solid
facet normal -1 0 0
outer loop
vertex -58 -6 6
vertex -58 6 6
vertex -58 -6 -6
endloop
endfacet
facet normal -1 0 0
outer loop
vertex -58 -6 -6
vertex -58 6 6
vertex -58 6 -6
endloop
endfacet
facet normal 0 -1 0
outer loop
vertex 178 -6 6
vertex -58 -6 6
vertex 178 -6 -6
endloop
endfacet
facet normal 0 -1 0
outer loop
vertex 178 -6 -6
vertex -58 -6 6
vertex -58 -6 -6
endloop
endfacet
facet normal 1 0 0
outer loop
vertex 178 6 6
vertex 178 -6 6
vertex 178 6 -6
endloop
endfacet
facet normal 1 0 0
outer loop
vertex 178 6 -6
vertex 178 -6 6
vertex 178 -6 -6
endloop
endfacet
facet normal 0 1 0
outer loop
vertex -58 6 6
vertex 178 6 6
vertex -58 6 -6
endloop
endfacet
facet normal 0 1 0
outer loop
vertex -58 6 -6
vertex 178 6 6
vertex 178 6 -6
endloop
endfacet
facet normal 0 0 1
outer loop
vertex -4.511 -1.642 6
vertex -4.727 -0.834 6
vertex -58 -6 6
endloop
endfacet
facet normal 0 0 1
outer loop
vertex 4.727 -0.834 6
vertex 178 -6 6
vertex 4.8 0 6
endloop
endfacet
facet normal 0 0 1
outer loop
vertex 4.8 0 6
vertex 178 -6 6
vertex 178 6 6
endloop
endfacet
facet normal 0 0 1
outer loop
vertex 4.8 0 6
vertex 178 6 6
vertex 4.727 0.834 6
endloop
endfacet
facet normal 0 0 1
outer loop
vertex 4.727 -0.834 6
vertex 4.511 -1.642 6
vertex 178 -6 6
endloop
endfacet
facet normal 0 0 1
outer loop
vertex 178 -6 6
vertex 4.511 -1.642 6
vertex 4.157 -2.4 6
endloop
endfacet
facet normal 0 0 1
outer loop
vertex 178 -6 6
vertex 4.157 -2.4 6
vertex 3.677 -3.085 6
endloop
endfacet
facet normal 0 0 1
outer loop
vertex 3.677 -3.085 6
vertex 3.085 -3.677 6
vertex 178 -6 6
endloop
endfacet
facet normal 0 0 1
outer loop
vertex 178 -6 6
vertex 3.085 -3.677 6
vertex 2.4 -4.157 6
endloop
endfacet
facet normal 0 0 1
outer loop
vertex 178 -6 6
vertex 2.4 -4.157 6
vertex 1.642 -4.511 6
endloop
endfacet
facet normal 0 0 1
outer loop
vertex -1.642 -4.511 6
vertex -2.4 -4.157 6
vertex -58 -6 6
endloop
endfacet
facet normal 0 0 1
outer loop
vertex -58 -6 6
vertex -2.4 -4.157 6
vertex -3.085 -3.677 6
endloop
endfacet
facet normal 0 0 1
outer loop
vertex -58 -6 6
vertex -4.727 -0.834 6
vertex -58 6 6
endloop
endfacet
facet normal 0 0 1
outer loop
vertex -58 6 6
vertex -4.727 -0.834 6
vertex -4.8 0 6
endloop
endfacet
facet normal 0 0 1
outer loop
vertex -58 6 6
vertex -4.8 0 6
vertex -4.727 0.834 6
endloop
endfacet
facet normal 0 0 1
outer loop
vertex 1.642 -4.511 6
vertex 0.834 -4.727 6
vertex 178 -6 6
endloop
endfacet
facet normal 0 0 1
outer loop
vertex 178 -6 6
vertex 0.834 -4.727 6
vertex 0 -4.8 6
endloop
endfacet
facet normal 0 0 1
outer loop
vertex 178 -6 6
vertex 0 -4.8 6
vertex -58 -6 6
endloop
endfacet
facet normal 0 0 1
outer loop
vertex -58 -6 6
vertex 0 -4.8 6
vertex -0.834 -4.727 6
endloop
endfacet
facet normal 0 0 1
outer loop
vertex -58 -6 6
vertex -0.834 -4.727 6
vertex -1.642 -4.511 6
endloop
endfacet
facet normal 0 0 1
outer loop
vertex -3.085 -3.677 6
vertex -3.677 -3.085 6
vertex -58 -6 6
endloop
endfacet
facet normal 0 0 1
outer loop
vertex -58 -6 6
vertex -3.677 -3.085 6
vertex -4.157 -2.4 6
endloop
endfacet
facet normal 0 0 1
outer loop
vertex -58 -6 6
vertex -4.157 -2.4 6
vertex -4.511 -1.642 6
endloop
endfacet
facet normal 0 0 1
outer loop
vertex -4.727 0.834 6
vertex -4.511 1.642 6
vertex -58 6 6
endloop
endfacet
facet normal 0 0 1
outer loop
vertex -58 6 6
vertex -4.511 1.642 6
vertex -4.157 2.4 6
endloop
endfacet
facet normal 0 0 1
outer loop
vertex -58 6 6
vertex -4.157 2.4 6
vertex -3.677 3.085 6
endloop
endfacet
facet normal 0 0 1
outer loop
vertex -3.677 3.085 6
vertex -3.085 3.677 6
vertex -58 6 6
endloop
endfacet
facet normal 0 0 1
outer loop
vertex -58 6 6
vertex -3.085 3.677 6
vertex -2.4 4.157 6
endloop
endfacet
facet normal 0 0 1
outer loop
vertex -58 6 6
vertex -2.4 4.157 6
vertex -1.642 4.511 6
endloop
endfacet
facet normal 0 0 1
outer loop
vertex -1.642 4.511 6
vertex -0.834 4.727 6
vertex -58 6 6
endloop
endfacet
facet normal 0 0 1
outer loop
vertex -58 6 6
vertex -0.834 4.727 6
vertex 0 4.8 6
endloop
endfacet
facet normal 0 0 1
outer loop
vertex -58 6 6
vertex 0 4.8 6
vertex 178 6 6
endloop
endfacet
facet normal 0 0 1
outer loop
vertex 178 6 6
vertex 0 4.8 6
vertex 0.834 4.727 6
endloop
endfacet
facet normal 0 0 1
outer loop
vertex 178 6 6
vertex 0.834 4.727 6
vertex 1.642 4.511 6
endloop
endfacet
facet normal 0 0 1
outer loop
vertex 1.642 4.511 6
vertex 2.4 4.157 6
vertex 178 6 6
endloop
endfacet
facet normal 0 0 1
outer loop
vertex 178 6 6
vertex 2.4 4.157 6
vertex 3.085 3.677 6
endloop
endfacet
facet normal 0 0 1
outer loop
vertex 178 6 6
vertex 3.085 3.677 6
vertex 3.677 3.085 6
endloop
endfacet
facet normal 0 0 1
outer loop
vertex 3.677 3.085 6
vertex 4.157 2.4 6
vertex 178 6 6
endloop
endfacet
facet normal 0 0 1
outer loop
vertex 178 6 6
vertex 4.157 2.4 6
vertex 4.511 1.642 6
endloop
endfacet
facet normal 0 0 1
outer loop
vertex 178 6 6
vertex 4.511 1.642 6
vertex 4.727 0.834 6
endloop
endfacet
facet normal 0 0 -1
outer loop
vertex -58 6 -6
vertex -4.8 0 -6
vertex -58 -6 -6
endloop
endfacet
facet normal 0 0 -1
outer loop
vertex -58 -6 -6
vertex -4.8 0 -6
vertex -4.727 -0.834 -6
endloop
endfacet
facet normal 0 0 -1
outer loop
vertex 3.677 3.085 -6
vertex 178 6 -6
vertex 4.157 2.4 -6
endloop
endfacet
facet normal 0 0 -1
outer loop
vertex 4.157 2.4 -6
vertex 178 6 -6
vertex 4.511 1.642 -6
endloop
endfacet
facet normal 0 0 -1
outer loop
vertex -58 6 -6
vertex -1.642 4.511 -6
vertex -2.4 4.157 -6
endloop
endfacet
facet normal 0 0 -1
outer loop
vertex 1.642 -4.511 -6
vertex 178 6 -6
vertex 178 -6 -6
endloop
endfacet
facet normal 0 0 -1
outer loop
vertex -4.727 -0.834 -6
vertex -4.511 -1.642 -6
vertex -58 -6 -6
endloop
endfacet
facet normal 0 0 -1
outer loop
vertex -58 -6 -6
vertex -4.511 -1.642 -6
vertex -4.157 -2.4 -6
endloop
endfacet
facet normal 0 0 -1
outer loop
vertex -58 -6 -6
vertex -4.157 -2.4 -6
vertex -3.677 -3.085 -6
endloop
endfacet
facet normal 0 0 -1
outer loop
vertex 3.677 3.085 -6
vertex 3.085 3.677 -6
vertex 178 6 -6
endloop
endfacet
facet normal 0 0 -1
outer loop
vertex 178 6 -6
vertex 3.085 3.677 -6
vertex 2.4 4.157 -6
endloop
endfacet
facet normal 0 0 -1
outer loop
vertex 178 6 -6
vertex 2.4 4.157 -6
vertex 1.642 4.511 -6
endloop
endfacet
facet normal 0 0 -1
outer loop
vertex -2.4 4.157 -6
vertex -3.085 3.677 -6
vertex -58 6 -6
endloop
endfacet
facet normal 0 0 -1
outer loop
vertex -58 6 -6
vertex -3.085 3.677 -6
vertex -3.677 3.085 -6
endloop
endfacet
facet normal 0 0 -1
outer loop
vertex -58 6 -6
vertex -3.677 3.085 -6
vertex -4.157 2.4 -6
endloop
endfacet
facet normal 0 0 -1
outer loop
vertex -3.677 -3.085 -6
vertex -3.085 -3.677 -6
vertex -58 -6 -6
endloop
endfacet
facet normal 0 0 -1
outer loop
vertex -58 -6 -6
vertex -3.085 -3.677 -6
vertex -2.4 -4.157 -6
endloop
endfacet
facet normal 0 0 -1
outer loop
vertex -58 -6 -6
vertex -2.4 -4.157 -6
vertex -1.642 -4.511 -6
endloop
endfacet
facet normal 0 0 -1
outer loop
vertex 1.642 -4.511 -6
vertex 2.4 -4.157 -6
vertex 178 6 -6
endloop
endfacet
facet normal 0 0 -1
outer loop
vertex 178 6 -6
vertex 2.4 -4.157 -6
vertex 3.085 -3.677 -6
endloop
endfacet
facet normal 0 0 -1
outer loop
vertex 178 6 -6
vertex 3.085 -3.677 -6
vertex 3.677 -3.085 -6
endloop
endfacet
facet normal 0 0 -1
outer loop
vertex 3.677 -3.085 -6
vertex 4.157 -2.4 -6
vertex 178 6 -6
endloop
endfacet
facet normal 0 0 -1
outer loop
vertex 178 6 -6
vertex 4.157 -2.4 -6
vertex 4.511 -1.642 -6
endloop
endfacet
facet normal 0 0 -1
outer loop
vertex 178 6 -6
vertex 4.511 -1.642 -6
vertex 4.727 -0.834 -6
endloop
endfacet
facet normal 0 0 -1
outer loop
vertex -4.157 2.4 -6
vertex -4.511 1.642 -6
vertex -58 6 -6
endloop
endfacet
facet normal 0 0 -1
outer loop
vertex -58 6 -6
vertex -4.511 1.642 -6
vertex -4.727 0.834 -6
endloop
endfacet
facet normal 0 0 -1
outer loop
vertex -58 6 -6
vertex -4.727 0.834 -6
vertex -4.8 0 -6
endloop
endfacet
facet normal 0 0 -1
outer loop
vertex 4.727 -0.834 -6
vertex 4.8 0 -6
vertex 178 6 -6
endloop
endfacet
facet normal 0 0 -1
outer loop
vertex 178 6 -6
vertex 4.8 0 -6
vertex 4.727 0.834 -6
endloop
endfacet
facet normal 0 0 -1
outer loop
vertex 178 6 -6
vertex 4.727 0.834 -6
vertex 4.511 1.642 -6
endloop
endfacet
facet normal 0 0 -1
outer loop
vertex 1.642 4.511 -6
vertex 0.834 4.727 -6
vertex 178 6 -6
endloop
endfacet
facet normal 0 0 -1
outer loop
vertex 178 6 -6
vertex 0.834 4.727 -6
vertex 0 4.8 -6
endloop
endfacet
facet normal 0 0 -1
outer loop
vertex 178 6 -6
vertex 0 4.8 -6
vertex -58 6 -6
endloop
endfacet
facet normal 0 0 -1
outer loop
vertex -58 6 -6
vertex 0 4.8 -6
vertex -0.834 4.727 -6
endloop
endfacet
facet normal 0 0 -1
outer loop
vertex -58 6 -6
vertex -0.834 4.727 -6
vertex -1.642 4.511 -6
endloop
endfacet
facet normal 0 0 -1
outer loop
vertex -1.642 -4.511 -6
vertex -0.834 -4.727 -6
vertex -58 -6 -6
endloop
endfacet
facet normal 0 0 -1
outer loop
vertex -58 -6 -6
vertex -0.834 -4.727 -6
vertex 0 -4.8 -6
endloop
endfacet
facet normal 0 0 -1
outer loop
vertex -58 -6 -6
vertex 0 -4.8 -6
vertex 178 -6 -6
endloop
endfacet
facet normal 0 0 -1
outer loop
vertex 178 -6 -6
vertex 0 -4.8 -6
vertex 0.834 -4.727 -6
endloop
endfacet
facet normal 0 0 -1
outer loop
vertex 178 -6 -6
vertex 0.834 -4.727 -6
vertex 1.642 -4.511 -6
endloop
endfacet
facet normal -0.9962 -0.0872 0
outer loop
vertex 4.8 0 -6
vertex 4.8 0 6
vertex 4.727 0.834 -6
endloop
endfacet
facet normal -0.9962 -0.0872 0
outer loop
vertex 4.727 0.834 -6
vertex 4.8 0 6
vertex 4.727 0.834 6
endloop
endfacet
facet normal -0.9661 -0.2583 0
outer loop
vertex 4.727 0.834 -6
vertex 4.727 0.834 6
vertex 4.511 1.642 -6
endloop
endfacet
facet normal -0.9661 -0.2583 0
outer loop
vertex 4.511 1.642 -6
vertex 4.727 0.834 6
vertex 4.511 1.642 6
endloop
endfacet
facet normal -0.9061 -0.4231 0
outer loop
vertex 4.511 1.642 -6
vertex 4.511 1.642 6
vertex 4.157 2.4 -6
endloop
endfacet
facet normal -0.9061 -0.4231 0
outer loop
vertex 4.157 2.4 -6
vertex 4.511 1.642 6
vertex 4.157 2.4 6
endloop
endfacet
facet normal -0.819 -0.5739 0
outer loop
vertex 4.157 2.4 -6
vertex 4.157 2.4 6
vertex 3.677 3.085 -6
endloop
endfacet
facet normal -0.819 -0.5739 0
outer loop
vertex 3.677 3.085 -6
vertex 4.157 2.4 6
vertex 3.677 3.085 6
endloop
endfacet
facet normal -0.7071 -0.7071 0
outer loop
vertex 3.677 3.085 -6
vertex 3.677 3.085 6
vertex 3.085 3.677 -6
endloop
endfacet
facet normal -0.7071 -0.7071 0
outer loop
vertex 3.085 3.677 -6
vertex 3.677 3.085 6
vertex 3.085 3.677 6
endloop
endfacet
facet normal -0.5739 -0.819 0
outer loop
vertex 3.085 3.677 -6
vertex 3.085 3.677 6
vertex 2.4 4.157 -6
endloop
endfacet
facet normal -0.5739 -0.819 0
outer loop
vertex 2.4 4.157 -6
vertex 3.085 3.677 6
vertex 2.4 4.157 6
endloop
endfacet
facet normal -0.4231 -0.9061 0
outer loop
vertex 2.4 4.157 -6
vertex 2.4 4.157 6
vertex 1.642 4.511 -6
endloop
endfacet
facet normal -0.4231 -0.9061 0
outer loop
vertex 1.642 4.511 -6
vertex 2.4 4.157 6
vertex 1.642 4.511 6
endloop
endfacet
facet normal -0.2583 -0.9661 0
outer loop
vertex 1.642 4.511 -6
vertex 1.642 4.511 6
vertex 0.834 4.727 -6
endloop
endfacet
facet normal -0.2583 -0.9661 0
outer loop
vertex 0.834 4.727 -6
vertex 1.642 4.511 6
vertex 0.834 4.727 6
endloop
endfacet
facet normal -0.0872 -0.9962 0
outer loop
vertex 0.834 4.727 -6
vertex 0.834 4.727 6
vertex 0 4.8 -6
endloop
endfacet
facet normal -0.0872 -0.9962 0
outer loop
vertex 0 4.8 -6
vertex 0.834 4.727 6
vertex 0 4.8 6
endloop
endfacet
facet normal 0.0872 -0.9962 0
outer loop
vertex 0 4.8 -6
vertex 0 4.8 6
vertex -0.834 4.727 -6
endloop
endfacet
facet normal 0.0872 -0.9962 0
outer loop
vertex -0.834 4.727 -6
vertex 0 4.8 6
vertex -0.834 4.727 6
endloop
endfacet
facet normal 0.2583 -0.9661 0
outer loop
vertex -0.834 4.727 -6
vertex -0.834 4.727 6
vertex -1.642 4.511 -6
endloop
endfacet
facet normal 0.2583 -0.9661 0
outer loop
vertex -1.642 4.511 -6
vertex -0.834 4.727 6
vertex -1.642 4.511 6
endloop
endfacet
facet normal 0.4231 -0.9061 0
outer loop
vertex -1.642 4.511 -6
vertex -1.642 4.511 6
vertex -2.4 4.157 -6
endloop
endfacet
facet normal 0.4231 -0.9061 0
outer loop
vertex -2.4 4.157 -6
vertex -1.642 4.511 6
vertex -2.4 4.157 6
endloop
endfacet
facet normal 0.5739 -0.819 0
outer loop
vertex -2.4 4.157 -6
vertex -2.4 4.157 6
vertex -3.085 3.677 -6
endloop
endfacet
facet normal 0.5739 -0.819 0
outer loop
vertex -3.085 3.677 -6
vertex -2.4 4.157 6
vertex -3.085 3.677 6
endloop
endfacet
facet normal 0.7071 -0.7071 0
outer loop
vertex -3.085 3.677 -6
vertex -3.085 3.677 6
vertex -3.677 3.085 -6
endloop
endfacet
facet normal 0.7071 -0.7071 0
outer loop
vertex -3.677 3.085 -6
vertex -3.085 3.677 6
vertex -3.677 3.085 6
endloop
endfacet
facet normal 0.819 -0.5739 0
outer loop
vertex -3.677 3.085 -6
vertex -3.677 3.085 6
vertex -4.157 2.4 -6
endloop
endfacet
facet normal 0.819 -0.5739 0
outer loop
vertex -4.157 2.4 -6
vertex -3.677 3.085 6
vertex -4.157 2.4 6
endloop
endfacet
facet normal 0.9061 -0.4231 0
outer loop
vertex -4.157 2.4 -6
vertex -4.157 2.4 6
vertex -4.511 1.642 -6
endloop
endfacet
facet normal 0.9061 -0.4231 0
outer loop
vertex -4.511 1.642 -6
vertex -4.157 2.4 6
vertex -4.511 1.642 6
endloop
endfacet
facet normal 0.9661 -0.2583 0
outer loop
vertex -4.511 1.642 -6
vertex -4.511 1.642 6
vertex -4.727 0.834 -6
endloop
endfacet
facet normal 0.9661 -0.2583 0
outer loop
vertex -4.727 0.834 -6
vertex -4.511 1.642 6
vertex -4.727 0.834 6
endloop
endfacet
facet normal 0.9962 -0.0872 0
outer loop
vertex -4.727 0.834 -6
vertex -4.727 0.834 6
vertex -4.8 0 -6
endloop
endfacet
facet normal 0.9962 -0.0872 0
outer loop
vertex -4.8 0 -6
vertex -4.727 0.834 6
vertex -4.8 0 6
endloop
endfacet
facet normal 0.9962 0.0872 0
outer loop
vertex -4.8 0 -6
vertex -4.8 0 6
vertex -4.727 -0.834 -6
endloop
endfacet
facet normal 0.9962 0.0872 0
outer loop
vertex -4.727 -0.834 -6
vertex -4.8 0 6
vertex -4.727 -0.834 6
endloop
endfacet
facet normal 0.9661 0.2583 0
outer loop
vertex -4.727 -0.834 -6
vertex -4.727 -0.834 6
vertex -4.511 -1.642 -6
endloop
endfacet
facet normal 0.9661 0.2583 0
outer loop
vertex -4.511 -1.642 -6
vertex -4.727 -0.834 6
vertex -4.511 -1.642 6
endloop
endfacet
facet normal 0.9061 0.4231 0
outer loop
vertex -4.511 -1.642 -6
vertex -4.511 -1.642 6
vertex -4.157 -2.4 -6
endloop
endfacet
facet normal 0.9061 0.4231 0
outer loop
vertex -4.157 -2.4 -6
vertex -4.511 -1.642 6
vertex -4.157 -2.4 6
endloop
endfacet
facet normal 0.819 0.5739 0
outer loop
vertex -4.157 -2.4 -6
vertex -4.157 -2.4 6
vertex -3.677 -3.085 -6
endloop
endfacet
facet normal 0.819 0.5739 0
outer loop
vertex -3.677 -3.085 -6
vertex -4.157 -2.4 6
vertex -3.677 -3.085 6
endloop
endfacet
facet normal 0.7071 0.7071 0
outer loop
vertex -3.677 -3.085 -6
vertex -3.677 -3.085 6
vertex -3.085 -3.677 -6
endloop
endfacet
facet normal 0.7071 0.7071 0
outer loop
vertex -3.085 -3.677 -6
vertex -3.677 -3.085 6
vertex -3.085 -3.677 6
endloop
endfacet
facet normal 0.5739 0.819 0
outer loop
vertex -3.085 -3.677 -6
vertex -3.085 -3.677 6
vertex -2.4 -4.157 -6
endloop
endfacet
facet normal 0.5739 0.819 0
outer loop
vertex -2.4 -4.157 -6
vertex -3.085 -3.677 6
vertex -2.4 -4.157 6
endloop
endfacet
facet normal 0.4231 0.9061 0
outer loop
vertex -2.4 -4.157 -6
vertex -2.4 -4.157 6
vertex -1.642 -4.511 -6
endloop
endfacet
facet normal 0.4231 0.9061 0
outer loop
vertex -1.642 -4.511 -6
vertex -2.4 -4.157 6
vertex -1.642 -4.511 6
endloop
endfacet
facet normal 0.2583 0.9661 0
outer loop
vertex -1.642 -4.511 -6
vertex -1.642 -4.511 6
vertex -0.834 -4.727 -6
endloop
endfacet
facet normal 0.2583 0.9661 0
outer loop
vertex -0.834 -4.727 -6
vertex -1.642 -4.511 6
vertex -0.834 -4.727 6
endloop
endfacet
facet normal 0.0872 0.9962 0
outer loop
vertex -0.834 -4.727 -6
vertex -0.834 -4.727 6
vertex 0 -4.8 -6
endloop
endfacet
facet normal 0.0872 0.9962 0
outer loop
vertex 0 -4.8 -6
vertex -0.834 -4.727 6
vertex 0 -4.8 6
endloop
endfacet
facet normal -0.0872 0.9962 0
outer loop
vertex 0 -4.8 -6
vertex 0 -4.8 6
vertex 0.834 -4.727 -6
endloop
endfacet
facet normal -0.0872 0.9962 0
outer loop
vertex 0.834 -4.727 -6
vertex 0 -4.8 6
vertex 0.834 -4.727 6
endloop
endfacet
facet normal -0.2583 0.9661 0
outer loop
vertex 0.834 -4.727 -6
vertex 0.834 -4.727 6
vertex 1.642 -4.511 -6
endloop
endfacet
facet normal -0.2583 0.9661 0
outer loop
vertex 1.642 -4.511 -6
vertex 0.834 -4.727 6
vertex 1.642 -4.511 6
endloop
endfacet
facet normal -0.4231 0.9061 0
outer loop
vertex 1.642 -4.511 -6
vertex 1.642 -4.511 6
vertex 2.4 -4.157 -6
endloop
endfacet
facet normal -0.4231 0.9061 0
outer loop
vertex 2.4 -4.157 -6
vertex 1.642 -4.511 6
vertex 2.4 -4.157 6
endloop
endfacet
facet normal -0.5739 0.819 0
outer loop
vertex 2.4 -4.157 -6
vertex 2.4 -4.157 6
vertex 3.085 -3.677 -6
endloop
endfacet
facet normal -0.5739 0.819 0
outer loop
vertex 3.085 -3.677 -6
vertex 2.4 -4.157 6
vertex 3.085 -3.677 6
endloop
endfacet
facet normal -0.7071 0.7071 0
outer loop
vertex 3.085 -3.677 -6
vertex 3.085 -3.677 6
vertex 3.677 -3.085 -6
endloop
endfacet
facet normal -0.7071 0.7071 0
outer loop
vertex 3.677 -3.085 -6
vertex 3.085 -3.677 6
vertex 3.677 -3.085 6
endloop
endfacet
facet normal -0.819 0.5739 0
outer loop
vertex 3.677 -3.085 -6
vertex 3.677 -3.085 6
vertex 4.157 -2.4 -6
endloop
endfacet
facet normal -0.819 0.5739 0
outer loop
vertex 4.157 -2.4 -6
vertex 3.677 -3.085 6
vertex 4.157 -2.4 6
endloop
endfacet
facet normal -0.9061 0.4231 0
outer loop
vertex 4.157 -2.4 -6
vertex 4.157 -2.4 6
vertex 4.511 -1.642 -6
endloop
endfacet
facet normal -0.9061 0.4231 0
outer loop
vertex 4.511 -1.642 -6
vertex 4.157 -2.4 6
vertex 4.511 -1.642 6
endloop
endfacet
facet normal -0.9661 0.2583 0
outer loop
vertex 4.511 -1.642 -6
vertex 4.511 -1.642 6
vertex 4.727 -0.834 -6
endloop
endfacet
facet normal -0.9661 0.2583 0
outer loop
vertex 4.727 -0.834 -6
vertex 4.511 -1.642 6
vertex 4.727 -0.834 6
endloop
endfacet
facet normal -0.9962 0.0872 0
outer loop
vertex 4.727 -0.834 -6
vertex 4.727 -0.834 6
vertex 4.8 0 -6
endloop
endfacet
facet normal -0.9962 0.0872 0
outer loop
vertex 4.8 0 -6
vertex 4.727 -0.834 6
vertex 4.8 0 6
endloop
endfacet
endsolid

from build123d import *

# Parameters (mm, degrees)
SKETCH1_W           = 236
SKETCH1_H           = 12
BOSS_EXTRUDE1_DEPTH = 6
SKETCH2_R           = 4.8
CUT_EXTRUDE1_DEPTH  = 12


with BuildPart() as part:
    # Sketch1 → Boss-Extrude1 (new, symmetric)
    with BuildSketch(Plane.XY):
        with Locations((60, 0)):
            Rectangle(SKETCH1_W, SKETCH1_H)
    extrude(amount=BOSS_EXTRUDE1_DEPTH, both=True)

    # Sketch2 → Cut-Extrude1 (cut, symmetric)
    with BuildSketch(Plane.XY):
        Circle(SKETCH2_R)
    extrude(amount=CUT_EXTRUDE1_DEPTH, both=True, mode=Mode.SUBTRACT)


solid = part.part
